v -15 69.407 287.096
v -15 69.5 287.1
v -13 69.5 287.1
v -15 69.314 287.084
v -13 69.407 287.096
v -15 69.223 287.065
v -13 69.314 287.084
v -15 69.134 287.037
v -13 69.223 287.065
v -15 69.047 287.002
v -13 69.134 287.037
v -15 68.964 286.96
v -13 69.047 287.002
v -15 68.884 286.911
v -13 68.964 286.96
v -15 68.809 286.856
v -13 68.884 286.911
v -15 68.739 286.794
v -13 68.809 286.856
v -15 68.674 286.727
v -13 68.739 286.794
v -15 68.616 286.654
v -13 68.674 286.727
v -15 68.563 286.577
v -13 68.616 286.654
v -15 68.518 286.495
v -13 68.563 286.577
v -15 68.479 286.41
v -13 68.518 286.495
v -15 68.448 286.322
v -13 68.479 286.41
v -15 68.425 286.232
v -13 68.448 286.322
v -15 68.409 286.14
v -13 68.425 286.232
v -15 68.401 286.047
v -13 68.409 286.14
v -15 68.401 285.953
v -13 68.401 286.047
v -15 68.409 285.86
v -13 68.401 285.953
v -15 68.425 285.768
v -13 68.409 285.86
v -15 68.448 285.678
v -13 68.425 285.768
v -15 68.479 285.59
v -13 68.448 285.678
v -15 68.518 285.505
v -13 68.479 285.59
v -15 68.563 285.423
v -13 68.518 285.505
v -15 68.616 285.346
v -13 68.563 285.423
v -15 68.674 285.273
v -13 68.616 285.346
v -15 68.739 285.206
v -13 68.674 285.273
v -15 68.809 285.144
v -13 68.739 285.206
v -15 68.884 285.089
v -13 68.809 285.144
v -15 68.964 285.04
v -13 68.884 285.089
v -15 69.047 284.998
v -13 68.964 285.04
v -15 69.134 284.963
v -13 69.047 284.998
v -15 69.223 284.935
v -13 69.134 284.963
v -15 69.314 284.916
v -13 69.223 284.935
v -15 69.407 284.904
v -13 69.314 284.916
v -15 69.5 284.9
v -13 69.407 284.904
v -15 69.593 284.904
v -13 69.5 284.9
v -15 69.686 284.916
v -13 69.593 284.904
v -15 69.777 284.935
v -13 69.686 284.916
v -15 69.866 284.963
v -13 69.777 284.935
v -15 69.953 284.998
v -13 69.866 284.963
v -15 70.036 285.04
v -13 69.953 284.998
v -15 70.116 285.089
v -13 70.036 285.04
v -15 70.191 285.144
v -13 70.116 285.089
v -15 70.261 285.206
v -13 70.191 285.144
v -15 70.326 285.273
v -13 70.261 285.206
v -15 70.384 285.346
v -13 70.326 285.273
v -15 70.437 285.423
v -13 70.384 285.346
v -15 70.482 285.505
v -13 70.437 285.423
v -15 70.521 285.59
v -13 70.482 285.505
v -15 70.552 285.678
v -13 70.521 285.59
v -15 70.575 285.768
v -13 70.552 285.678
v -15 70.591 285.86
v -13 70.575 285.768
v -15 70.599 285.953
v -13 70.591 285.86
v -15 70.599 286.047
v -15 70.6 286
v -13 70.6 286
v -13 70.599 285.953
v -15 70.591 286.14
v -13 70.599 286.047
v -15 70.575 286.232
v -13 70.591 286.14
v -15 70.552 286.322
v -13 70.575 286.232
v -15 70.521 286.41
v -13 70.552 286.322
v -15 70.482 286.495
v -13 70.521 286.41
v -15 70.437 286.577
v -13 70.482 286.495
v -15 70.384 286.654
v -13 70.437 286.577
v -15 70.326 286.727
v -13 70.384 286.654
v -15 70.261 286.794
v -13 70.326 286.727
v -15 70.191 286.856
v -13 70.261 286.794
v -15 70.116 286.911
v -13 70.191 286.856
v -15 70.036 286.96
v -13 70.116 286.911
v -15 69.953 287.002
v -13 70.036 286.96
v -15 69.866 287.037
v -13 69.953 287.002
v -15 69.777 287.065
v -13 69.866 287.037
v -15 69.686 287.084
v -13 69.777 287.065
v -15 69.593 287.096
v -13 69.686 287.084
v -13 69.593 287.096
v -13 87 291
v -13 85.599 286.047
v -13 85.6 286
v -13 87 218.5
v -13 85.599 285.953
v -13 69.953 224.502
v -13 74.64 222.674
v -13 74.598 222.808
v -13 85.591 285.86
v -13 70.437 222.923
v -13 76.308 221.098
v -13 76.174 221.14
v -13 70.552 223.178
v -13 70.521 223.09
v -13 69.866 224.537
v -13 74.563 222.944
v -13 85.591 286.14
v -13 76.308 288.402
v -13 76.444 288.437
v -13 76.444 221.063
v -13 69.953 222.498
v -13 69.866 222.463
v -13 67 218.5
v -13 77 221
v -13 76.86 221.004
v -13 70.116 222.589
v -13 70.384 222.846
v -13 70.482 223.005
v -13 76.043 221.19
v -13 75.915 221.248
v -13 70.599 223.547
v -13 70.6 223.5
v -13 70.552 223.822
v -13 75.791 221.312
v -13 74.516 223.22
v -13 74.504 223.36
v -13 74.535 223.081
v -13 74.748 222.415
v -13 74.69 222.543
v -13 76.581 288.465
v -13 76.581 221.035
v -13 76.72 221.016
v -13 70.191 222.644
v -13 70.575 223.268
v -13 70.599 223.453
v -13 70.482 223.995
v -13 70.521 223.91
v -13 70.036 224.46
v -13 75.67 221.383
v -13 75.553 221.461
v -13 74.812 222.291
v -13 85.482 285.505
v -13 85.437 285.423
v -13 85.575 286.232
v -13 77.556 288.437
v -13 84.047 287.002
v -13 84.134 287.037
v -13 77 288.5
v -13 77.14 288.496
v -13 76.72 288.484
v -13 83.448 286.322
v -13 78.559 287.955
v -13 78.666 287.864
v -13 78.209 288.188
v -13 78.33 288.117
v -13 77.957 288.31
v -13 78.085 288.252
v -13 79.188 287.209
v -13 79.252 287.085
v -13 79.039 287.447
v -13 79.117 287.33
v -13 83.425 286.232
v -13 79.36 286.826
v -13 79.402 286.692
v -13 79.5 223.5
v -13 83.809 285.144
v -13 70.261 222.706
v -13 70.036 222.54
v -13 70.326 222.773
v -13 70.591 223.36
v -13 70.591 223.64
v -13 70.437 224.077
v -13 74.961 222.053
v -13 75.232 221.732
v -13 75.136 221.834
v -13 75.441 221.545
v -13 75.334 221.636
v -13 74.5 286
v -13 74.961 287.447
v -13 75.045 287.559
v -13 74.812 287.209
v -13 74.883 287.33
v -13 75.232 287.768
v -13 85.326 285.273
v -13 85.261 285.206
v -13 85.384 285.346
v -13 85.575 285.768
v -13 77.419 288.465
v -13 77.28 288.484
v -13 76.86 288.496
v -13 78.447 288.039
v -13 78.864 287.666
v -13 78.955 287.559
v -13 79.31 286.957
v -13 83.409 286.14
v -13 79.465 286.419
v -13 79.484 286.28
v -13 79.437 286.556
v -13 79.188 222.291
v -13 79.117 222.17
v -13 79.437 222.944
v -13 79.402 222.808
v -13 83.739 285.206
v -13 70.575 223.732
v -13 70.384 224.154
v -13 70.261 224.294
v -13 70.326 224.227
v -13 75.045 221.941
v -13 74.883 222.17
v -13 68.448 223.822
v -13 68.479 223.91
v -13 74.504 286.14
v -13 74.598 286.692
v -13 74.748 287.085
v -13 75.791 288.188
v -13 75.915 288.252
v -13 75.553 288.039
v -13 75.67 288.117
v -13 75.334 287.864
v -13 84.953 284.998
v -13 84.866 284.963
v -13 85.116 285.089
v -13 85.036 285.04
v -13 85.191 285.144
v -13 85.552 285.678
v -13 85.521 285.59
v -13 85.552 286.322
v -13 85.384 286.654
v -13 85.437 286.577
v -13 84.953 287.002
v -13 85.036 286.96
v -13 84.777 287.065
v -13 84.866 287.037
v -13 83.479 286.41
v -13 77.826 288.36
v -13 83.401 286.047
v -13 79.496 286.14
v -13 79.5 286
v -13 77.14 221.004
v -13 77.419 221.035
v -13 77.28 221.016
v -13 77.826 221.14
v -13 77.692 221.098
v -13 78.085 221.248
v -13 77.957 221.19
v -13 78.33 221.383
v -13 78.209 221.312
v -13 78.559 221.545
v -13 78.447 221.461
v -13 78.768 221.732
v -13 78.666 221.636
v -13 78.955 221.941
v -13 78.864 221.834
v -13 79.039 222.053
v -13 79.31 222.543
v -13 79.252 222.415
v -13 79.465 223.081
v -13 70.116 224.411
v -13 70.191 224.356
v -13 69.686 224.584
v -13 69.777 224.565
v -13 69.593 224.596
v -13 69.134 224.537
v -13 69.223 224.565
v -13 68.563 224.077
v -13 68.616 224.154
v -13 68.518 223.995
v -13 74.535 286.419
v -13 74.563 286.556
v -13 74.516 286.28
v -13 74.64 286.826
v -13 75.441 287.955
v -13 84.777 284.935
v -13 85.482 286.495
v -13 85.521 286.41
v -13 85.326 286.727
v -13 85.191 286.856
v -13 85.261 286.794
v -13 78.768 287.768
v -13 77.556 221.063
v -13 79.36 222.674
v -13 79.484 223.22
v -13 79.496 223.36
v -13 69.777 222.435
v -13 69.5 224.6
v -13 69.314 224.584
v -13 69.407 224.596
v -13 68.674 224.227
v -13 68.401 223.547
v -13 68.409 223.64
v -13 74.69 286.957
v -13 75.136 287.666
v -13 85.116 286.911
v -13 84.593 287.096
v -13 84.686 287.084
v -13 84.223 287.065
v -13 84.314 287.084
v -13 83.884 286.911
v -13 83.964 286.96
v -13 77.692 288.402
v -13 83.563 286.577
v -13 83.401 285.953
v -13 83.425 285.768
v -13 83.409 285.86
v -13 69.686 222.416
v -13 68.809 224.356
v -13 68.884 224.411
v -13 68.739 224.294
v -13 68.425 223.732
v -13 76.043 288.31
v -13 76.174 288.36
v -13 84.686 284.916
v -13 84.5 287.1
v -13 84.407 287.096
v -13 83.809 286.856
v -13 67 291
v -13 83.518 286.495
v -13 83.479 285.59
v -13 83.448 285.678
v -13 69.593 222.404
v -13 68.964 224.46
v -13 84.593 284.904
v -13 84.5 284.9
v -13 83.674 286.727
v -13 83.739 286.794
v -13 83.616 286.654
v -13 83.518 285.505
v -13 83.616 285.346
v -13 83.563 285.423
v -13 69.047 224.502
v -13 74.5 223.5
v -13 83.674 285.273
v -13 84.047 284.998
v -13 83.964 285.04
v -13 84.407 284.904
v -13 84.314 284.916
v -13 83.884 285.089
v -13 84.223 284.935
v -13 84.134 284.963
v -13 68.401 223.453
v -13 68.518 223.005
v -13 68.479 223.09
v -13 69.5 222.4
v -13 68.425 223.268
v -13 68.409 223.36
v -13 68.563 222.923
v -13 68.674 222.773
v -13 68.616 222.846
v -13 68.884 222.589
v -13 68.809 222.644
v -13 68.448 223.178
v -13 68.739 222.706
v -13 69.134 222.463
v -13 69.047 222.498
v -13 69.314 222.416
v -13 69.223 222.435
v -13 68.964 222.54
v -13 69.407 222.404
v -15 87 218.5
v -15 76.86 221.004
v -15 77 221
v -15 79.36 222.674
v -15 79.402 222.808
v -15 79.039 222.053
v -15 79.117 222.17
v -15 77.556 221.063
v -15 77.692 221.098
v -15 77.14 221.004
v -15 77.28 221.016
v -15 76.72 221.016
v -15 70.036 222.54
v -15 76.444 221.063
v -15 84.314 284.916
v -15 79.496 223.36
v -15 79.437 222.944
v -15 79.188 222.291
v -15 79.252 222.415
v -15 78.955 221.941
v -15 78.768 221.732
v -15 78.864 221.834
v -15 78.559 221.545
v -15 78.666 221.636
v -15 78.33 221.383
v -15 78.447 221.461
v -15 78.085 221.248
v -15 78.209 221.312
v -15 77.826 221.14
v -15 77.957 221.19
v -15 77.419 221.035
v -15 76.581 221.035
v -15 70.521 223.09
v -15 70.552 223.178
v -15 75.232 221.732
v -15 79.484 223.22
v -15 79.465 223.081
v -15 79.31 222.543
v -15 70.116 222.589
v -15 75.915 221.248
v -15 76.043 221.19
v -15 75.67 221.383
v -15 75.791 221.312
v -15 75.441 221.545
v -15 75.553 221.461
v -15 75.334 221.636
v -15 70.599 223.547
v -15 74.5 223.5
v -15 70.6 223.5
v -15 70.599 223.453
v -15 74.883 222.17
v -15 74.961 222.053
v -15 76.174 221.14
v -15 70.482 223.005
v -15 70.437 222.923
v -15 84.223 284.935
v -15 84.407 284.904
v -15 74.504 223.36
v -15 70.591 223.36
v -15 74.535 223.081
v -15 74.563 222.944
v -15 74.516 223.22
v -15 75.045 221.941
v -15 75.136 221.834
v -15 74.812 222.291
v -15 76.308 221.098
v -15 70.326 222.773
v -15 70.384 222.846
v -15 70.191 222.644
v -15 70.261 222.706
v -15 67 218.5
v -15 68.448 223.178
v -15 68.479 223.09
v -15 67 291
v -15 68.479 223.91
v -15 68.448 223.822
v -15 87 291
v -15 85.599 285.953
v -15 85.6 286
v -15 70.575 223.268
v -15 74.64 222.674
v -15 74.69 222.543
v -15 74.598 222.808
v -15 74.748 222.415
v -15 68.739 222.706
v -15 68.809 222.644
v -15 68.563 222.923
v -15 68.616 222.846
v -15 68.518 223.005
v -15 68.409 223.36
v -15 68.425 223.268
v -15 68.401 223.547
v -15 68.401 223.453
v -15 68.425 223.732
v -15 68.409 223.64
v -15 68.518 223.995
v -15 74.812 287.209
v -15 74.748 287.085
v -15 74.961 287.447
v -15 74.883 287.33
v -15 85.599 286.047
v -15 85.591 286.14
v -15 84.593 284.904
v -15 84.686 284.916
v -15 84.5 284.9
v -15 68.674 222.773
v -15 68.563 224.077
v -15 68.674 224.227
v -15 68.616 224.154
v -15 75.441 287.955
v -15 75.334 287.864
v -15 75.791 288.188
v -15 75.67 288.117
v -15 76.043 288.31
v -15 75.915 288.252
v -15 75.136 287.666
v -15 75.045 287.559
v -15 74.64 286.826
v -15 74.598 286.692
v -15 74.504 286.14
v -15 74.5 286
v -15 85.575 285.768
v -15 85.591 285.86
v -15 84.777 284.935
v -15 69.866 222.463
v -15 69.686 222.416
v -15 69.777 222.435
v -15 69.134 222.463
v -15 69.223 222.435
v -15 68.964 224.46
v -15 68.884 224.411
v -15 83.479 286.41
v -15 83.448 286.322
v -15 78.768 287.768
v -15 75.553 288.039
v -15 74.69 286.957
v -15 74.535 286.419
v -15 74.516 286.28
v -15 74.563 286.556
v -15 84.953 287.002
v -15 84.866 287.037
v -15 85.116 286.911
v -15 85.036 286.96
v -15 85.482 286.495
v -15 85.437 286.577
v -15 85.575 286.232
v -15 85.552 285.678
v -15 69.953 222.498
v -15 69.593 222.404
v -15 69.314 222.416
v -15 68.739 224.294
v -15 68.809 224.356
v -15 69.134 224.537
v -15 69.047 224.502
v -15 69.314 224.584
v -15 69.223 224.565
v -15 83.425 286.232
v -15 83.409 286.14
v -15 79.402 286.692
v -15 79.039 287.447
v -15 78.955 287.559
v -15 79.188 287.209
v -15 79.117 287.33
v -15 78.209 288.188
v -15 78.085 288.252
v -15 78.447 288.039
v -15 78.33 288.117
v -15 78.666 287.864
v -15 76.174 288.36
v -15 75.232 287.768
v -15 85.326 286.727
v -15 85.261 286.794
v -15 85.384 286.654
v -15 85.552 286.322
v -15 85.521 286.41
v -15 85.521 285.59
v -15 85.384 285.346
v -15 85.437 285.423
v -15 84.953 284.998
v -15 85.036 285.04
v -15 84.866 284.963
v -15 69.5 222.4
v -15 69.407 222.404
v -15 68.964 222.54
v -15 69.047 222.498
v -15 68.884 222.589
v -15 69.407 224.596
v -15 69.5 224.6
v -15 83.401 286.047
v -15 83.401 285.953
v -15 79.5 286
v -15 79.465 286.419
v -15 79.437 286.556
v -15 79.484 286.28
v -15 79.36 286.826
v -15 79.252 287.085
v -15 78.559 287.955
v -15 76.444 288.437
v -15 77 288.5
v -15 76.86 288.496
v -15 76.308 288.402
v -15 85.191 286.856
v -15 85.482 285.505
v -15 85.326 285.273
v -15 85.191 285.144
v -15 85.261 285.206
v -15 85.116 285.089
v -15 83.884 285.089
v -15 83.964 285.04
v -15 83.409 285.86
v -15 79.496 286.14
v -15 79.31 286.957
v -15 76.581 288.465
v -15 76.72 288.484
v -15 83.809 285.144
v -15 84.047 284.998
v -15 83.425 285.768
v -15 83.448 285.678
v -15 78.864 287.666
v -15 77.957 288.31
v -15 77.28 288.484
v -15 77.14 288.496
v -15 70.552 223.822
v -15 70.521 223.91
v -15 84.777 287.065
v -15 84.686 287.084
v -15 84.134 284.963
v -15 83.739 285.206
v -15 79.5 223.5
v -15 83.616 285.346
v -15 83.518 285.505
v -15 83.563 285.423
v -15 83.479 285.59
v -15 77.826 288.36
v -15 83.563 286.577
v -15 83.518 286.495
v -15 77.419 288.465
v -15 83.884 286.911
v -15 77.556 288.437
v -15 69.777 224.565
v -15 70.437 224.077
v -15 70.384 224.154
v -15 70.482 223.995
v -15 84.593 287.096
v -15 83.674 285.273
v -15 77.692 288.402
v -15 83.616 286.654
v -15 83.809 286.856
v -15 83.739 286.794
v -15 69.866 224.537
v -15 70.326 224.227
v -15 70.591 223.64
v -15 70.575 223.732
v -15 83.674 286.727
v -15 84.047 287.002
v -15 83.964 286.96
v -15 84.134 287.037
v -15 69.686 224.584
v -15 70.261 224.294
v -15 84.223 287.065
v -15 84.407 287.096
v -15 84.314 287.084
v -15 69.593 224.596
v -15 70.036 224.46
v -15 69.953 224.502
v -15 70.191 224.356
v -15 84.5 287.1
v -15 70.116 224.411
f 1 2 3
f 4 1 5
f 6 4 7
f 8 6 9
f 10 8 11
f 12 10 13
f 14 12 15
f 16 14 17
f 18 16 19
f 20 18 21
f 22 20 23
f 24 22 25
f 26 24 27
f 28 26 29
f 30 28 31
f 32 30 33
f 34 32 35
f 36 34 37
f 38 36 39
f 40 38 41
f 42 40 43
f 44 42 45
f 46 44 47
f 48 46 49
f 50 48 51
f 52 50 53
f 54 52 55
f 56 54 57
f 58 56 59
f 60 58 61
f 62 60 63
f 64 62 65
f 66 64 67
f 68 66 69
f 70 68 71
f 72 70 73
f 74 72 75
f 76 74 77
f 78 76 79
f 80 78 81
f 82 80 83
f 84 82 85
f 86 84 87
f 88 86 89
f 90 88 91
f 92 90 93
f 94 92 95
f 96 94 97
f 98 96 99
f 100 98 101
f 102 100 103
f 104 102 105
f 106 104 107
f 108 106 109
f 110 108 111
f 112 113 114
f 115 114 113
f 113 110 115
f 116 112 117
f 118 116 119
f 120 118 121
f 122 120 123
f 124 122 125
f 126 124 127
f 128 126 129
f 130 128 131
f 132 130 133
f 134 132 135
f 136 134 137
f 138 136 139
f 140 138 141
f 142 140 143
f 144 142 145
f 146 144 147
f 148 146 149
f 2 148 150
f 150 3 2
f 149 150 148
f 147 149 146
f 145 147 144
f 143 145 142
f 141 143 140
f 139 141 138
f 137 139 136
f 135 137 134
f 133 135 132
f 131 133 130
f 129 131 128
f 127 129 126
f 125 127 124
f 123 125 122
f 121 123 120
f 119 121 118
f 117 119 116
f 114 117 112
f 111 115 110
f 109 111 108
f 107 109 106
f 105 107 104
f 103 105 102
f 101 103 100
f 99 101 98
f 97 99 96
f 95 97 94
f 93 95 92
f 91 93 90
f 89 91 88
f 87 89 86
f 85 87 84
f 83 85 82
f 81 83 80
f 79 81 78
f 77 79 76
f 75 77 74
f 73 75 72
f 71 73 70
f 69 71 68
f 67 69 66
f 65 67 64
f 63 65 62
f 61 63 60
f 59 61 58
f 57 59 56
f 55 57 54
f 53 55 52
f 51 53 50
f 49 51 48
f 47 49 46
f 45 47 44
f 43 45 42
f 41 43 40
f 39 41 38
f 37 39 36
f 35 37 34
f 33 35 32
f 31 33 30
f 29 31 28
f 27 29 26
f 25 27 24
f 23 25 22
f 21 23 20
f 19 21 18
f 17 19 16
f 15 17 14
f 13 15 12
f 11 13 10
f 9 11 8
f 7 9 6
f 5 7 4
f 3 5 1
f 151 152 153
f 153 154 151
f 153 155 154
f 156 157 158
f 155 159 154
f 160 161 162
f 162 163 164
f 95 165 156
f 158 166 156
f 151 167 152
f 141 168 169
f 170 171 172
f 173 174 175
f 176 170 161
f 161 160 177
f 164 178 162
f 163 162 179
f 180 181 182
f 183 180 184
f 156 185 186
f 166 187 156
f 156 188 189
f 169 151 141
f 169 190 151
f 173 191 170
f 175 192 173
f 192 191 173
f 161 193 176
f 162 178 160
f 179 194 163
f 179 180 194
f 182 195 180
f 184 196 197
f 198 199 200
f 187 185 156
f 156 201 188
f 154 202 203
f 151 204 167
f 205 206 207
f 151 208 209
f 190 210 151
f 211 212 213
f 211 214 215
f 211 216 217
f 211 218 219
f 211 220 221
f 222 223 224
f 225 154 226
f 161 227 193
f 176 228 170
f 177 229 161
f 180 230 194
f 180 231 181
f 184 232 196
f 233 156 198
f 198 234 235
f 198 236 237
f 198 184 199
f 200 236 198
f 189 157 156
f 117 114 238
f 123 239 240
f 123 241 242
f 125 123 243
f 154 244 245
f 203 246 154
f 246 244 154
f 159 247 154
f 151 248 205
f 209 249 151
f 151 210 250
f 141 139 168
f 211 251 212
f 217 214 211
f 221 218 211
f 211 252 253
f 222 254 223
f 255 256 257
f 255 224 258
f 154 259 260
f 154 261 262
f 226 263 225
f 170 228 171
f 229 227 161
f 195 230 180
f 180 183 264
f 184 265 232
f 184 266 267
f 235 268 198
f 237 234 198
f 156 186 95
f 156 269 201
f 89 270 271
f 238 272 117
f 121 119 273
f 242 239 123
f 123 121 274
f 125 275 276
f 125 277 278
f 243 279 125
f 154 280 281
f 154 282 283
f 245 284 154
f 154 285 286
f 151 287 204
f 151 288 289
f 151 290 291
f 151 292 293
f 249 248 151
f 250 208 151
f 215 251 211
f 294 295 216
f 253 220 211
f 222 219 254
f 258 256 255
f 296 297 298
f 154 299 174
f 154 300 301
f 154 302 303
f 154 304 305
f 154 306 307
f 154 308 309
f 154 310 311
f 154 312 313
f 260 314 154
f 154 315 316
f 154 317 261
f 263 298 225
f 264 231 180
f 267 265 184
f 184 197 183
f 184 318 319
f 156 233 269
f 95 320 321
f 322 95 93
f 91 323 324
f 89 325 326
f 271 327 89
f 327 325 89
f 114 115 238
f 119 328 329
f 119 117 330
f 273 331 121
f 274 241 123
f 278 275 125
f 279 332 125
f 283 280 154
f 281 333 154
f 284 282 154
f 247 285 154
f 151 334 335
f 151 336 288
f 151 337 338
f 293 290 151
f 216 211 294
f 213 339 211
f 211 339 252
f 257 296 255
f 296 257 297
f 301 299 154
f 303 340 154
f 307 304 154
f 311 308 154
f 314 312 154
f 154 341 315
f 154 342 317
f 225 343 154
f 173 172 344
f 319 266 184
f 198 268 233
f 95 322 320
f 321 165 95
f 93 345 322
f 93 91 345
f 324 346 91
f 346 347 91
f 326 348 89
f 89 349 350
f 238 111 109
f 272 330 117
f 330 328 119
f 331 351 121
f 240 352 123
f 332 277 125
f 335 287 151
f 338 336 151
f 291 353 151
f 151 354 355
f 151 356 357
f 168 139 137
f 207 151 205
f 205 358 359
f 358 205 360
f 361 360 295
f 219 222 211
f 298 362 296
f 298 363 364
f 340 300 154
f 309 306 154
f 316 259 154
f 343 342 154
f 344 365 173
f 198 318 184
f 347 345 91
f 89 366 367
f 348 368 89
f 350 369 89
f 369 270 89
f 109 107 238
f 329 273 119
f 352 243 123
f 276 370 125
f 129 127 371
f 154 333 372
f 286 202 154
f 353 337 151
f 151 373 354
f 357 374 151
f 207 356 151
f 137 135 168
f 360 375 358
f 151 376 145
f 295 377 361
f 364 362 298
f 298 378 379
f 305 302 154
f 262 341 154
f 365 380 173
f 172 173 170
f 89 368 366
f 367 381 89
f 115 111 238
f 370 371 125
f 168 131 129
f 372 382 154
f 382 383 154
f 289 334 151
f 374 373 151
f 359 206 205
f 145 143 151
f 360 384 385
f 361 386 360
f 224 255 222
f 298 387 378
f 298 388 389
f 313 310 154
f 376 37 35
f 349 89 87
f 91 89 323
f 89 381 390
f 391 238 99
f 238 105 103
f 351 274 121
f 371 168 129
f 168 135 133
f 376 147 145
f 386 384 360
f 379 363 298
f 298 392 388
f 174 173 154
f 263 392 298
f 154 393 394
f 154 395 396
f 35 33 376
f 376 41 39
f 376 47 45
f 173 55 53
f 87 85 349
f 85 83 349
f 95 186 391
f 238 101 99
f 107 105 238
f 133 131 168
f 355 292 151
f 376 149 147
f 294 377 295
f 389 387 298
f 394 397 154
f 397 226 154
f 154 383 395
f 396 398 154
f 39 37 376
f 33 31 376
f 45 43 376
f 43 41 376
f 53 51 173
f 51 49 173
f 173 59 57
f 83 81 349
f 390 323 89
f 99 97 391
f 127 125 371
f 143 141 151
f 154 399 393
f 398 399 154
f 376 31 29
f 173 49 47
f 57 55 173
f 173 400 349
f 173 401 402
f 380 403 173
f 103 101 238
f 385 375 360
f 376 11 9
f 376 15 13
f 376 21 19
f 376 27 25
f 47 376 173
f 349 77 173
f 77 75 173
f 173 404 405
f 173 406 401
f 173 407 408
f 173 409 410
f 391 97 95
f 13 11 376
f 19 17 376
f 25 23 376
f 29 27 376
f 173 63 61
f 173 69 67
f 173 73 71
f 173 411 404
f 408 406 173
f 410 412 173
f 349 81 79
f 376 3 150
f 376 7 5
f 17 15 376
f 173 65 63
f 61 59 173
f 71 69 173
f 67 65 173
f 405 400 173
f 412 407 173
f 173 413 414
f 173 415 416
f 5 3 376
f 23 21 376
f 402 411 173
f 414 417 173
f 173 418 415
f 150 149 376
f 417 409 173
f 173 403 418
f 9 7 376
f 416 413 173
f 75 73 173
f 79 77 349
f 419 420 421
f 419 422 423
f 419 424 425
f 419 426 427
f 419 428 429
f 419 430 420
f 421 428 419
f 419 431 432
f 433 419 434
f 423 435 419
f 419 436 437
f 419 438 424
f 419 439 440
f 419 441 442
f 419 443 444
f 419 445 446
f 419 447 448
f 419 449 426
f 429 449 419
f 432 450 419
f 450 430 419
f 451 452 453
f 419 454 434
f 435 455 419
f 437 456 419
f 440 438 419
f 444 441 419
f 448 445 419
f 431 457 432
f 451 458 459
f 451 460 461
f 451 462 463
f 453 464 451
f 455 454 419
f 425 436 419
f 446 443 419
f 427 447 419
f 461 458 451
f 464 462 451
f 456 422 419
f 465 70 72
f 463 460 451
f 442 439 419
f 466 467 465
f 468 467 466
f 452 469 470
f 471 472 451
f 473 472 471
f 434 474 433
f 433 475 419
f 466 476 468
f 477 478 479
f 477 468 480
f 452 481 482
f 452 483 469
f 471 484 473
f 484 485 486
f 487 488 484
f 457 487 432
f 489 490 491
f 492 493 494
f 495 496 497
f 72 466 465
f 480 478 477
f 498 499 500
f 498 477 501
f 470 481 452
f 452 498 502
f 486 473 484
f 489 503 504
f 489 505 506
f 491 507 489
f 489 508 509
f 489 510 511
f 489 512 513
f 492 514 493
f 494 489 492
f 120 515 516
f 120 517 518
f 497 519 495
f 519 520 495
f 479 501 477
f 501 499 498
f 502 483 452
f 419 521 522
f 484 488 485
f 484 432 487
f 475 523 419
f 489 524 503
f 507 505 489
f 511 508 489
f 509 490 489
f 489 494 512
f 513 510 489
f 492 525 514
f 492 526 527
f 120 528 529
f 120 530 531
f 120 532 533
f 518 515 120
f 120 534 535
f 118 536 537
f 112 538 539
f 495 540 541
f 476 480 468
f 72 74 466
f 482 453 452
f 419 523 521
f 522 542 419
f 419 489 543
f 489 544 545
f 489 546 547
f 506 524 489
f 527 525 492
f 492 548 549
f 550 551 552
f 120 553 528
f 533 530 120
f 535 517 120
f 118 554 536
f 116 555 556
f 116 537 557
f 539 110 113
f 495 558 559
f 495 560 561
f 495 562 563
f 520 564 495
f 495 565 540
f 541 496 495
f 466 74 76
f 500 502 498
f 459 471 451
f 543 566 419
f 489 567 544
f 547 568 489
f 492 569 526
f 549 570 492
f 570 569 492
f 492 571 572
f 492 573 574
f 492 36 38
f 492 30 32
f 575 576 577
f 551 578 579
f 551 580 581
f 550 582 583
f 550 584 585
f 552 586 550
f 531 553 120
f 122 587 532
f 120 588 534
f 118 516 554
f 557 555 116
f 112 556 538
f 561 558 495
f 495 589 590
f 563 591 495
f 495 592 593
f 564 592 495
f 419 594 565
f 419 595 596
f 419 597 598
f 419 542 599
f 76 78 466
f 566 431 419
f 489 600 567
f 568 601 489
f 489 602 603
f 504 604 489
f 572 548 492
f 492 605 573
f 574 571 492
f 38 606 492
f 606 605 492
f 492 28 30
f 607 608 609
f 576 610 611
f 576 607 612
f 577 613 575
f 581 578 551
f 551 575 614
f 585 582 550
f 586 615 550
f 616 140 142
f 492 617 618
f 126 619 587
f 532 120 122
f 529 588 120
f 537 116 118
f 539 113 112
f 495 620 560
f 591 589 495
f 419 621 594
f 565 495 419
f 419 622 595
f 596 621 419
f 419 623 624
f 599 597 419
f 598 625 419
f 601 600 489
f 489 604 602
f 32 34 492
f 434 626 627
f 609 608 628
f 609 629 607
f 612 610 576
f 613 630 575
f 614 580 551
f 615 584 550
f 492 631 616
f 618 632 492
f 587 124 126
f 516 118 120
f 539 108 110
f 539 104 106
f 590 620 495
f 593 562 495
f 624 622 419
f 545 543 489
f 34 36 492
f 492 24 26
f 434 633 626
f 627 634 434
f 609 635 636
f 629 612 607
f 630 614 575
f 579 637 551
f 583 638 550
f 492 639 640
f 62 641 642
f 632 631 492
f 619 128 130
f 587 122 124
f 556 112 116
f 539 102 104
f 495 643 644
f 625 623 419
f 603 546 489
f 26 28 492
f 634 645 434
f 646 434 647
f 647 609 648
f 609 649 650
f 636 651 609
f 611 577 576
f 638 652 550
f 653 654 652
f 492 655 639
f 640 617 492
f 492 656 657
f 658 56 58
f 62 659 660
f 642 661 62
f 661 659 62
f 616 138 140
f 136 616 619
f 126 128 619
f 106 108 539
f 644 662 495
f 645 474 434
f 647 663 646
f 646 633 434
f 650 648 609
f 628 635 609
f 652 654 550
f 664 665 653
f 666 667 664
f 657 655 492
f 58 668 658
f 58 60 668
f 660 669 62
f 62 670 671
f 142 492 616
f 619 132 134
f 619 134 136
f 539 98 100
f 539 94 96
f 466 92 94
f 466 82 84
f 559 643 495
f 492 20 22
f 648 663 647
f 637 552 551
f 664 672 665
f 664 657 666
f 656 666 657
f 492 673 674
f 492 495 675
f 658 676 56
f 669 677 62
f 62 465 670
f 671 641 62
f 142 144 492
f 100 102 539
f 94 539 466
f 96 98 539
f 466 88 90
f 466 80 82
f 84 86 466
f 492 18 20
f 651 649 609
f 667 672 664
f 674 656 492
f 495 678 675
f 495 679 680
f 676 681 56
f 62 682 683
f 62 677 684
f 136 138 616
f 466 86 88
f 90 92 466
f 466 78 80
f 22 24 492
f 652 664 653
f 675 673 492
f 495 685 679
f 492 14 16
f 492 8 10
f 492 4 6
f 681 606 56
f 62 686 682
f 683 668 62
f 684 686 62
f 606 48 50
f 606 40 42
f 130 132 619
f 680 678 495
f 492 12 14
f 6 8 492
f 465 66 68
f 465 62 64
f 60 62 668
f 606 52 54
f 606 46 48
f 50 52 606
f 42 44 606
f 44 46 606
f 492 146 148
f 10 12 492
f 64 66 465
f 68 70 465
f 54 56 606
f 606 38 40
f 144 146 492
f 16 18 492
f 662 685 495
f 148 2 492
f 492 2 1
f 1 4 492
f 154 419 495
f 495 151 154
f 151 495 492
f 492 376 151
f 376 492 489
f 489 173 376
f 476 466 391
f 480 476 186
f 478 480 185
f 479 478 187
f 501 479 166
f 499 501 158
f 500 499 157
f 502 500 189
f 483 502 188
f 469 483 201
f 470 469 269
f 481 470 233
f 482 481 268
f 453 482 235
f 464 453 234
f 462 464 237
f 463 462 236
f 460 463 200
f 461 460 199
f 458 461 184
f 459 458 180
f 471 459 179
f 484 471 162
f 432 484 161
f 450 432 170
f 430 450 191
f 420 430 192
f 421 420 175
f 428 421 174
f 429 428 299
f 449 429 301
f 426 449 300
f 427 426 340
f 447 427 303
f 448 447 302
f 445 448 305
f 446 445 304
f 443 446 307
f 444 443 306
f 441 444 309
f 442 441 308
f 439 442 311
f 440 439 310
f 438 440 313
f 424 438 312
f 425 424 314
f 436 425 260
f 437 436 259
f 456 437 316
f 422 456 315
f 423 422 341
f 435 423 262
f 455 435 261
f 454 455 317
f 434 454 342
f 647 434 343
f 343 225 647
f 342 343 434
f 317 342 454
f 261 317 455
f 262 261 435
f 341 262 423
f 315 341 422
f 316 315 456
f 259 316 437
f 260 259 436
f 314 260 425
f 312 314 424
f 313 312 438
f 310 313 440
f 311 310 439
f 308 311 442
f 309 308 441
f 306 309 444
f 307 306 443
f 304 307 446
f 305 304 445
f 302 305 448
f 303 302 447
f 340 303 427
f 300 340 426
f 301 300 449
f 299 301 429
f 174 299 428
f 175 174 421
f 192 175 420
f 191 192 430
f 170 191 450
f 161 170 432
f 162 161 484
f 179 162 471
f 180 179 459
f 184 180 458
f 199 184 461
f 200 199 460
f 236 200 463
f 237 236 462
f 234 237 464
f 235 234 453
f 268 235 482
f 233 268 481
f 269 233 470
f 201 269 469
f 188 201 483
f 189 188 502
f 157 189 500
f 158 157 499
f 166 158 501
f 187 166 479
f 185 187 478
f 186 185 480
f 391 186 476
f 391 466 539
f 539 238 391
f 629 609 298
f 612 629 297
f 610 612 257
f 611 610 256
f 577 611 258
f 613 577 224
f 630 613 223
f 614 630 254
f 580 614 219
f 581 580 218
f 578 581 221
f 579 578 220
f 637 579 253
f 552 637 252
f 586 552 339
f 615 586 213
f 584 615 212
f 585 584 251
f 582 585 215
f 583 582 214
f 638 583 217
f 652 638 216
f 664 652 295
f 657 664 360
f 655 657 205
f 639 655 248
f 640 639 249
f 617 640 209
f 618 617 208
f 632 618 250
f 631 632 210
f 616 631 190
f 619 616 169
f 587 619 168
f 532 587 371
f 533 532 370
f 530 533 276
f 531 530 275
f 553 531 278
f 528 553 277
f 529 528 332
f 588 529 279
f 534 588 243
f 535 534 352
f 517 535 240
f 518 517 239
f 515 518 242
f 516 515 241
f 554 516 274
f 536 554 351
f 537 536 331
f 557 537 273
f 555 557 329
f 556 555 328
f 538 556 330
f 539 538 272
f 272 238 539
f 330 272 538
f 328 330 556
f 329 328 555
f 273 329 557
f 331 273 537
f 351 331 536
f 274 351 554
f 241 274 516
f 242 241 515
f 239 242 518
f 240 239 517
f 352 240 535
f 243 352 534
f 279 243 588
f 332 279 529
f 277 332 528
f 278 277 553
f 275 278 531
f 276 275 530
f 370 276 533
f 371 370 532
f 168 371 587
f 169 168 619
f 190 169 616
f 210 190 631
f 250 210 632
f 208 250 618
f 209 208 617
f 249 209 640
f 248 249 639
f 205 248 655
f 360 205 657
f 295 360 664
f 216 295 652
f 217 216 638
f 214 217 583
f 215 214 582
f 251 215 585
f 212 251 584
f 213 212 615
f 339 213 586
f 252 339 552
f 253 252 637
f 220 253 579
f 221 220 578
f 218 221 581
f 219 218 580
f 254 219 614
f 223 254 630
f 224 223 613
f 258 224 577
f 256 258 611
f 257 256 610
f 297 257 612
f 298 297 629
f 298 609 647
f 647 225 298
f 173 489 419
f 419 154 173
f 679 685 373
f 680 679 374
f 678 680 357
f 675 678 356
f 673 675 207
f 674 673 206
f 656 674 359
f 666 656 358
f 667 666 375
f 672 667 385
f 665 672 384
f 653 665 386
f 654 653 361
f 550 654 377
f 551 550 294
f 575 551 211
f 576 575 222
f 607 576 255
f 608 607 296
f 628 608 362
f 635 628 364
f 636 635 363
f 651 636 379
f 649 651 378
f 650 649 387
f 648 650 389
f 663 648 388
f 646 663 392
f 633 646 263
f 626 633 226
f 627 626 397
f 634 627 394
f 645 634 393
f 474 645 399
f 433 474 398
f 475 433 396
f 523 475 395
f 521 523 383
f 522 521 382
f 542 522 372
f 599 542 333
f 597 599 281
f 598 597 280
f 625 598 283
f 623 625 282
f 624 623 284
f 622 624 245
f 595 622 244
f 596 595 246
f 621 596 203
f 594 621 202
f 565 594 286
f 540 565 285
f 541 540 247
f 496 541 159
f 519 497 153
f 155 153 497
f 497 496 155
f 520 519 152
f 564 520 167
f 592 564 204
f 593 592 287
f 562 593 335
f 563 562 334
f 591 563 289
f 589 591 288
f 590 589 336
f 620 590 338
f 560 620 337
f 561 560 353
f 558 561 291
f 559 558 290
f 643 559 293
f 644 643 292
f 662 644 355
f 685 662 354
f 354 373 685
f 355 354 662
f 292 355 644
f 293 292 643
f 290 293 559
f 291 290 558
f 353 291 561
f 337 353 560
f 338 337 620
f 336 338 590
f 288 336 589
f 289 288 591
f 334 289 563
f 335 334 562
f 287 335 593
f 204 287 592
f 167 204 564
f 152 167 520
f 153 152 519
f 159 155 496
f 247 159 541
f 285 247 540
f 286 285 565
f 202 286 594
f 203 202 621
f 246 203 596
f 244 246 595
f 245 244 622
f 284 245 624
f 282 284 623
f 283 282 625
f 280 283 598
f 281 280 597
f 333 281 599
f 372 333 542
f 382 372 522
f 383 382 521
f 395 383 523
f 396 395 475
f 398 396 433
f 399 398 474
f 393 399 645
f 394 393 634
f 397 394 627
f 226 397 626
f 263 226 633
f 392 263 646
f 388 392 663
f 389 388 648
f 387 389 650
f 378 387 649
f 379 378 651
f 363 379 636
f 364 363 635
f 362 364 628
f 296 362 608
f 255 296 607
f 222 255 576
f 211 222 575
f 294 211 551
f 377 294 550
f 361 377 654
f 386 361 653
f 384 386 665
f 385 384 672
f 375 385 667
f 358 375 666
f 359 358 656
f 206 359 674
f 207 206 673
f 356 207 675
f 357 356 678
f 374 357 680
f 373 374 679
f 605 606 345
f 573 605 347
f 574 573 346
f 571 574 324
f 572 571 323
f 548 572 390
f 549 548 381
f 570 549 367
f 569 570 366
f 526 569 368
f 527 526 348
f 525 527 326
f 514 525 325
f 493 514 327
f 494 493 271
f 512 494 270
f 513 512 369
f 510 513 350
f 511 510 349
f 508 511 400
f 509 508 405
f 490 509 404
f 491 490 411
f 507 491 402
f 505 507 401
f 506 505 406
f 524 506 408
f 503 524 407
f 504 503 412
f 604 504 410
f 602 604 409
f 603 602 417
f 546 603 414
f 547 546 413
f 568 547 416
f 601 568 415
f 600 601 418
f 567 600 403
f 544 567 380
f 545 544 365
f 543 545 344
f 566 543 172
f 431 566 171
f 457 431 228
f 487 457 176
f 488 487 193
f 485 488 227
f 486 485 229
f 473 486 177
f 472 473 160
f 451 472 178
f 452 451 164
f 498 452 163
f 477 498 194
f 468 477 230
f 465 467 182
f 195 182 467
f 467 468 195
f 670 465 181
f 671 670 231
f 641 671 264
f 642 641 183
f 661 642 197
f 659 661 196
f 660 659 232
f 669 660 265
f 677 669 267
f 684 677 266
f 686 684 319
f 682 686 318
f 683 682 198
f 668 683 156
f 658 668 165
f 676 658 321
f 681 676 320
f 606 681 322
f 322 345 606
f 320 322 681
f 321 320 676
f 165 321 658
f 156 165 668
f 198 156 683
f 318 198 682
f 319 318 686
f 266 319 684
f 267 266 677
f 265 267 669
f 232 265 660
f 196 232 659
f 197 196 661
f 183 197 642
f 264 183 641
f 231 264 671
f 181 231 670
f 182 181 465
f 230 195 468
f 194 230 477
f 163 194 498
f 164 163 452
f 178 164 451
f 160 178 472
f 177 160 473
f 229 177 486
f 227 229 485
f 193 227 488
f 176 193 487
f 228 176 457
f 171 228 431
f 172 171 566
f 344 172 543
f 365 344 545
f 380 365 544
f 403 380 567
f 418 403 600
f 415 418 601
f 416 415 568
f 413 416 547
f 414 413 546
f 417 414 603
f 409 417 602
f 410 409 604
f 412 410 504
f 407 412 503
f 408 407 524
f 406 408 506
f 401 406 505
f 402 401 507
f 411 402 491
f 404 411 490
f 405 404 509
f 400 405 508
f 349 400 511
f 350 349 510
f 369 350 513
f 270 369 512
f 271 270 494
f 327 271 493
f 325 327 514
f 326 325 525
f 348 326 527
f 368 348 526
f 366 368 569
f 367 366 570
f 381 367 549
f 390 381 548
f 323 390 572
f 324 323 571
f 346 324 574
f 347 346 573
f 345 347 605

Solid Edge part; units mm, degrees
sketch "Sketch1" plane through (-15, 0, 0) normal (1, 0, 0) x (0, 1, 0)
  circle A0 centre (69.5, 286) radius 1.1
  line L0 (79.5, 223.5) -> (79.5, 286)
  line L1 (74.5, 286) -> (74.5, 223.5)
  arc A1 (74.5, 286) -> (79.5, 286) centre (77, 286) cw
  arc A2 (79.5, 223.5) -> (74.5, 223.5) centre (77, 223.5) cw
  line L2 (87, 291) -> (67, 291)
  line L3 (67, 291) -> (67, 218.5)
  line L4 (67, 218.5) -> (87, 218.5)
  line L5 (87, 218.5) -> (87, 291)
  circle A3 centre (84.5, 286) radius 1.1
  circle A4 centre (69.5, 223.5) radius 1.1
extrude "Protrusion1" add sketch "Sketch1" along normal blind 2
